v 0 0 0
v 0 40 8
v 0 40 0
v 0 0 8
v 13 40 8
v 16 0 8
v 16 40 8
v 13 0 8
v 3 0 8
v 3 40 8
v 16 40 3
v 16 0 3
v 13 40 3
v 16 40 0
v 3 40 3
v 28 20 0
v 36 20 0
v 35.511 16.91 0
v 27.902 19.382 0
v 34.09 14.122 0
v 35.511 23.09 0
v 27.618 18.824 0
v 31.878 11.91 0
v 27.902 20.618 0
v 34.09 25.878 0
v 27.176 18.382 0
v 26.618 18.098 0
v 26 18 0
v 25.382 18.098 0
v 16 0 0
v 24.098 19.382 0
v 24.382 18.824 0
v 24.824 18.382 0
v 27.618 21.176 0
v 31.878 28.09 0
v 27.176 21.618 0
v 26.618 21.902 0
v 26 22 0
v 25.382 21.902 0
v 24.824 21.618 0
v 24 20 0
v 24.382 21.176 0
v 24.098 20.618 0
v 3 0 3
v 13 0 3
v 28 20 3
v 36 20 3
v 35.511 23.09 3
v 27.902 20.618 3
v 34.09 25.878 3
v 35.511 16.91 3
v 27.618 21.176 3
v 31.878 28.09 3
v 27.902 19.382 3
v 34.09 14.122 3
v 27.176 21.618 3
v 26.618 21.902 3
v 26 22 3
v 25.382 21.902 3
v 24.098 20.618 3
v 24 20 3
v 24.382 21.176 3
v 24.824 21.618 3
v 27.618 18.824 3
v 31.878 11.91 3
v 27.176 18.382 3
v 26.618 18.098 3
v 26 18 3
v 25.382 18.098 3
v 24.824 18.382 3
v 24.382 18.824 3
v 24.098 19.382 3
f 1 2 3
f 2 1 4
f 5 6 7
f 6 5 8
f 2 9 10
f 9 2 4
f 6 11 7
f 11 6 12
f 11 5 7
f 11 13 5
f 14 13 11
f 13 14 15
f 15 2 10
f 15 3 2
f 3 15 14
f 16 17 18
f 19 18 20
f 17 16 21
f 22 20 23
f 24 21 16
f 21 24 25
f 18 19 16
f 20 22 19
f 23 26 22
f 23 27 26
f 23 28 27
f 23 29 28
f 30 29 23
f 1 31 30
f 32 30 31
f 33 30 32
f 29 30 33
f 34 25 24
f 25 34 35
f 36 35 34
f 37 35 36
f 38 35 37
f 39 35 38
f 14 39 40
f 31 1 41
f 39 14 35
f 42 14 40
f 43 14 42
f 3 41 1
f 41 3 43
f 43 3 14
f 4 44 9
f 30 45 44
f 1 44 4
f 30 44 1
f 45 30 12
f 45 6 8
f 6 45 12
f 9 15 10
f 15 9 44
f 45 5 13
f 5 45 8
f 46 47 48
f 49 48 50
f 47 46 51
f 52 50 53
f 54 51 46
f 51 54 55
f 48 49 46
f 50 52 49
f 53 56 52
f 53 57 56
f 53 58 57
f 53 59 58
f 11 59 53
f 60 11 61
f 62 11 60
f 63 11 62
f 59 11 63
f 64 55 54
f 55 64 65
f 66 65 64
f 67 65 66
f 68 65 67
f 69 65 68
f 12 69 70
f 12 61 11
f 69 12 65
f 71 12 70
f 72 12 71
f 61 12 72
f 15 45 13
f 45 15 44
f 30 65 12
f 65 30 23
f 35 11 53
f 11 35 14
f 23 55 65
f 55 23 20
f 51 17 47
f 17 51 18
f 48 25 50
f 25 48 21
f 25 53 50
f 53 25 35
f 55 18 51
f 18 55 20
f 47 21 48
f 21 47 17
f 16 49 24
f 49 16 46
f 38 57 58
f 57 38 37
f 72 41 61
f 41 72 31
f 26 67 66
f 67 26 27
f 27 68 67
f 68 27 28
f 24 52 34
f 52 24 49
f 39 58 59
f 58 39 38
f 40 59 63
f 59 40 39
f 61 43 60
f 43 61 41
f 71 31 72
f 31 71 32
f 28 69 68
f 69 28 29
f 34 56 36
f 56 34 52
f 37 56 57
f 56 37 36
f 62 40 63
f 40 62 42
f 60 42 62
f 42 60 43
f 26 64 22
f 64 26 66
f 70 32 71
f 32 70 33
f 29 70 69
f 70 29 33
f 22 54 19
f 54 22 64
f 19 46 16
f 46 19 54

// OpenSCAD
ml = 40;
thick = 3;
d = 10;
r = 10;
$fn=20;

difference() {
    cube([d + 2 * thick, ml, d/2 + thick]);
    translate([thick, -1, thick]) cube([d, ml + 2, d/2 + 1]);
}
difference() {
    hull() {
        cube([d + 2 * thick, ml, thick]);
        translate([d + 2 * thick + r, ml/2, 0])
            cylinder(d=r * 2, h=thick);
    }
    translate([d + 2 * thick + r, ml/2, -1])
        cylinder(d=4, h=thick + 2);
}
